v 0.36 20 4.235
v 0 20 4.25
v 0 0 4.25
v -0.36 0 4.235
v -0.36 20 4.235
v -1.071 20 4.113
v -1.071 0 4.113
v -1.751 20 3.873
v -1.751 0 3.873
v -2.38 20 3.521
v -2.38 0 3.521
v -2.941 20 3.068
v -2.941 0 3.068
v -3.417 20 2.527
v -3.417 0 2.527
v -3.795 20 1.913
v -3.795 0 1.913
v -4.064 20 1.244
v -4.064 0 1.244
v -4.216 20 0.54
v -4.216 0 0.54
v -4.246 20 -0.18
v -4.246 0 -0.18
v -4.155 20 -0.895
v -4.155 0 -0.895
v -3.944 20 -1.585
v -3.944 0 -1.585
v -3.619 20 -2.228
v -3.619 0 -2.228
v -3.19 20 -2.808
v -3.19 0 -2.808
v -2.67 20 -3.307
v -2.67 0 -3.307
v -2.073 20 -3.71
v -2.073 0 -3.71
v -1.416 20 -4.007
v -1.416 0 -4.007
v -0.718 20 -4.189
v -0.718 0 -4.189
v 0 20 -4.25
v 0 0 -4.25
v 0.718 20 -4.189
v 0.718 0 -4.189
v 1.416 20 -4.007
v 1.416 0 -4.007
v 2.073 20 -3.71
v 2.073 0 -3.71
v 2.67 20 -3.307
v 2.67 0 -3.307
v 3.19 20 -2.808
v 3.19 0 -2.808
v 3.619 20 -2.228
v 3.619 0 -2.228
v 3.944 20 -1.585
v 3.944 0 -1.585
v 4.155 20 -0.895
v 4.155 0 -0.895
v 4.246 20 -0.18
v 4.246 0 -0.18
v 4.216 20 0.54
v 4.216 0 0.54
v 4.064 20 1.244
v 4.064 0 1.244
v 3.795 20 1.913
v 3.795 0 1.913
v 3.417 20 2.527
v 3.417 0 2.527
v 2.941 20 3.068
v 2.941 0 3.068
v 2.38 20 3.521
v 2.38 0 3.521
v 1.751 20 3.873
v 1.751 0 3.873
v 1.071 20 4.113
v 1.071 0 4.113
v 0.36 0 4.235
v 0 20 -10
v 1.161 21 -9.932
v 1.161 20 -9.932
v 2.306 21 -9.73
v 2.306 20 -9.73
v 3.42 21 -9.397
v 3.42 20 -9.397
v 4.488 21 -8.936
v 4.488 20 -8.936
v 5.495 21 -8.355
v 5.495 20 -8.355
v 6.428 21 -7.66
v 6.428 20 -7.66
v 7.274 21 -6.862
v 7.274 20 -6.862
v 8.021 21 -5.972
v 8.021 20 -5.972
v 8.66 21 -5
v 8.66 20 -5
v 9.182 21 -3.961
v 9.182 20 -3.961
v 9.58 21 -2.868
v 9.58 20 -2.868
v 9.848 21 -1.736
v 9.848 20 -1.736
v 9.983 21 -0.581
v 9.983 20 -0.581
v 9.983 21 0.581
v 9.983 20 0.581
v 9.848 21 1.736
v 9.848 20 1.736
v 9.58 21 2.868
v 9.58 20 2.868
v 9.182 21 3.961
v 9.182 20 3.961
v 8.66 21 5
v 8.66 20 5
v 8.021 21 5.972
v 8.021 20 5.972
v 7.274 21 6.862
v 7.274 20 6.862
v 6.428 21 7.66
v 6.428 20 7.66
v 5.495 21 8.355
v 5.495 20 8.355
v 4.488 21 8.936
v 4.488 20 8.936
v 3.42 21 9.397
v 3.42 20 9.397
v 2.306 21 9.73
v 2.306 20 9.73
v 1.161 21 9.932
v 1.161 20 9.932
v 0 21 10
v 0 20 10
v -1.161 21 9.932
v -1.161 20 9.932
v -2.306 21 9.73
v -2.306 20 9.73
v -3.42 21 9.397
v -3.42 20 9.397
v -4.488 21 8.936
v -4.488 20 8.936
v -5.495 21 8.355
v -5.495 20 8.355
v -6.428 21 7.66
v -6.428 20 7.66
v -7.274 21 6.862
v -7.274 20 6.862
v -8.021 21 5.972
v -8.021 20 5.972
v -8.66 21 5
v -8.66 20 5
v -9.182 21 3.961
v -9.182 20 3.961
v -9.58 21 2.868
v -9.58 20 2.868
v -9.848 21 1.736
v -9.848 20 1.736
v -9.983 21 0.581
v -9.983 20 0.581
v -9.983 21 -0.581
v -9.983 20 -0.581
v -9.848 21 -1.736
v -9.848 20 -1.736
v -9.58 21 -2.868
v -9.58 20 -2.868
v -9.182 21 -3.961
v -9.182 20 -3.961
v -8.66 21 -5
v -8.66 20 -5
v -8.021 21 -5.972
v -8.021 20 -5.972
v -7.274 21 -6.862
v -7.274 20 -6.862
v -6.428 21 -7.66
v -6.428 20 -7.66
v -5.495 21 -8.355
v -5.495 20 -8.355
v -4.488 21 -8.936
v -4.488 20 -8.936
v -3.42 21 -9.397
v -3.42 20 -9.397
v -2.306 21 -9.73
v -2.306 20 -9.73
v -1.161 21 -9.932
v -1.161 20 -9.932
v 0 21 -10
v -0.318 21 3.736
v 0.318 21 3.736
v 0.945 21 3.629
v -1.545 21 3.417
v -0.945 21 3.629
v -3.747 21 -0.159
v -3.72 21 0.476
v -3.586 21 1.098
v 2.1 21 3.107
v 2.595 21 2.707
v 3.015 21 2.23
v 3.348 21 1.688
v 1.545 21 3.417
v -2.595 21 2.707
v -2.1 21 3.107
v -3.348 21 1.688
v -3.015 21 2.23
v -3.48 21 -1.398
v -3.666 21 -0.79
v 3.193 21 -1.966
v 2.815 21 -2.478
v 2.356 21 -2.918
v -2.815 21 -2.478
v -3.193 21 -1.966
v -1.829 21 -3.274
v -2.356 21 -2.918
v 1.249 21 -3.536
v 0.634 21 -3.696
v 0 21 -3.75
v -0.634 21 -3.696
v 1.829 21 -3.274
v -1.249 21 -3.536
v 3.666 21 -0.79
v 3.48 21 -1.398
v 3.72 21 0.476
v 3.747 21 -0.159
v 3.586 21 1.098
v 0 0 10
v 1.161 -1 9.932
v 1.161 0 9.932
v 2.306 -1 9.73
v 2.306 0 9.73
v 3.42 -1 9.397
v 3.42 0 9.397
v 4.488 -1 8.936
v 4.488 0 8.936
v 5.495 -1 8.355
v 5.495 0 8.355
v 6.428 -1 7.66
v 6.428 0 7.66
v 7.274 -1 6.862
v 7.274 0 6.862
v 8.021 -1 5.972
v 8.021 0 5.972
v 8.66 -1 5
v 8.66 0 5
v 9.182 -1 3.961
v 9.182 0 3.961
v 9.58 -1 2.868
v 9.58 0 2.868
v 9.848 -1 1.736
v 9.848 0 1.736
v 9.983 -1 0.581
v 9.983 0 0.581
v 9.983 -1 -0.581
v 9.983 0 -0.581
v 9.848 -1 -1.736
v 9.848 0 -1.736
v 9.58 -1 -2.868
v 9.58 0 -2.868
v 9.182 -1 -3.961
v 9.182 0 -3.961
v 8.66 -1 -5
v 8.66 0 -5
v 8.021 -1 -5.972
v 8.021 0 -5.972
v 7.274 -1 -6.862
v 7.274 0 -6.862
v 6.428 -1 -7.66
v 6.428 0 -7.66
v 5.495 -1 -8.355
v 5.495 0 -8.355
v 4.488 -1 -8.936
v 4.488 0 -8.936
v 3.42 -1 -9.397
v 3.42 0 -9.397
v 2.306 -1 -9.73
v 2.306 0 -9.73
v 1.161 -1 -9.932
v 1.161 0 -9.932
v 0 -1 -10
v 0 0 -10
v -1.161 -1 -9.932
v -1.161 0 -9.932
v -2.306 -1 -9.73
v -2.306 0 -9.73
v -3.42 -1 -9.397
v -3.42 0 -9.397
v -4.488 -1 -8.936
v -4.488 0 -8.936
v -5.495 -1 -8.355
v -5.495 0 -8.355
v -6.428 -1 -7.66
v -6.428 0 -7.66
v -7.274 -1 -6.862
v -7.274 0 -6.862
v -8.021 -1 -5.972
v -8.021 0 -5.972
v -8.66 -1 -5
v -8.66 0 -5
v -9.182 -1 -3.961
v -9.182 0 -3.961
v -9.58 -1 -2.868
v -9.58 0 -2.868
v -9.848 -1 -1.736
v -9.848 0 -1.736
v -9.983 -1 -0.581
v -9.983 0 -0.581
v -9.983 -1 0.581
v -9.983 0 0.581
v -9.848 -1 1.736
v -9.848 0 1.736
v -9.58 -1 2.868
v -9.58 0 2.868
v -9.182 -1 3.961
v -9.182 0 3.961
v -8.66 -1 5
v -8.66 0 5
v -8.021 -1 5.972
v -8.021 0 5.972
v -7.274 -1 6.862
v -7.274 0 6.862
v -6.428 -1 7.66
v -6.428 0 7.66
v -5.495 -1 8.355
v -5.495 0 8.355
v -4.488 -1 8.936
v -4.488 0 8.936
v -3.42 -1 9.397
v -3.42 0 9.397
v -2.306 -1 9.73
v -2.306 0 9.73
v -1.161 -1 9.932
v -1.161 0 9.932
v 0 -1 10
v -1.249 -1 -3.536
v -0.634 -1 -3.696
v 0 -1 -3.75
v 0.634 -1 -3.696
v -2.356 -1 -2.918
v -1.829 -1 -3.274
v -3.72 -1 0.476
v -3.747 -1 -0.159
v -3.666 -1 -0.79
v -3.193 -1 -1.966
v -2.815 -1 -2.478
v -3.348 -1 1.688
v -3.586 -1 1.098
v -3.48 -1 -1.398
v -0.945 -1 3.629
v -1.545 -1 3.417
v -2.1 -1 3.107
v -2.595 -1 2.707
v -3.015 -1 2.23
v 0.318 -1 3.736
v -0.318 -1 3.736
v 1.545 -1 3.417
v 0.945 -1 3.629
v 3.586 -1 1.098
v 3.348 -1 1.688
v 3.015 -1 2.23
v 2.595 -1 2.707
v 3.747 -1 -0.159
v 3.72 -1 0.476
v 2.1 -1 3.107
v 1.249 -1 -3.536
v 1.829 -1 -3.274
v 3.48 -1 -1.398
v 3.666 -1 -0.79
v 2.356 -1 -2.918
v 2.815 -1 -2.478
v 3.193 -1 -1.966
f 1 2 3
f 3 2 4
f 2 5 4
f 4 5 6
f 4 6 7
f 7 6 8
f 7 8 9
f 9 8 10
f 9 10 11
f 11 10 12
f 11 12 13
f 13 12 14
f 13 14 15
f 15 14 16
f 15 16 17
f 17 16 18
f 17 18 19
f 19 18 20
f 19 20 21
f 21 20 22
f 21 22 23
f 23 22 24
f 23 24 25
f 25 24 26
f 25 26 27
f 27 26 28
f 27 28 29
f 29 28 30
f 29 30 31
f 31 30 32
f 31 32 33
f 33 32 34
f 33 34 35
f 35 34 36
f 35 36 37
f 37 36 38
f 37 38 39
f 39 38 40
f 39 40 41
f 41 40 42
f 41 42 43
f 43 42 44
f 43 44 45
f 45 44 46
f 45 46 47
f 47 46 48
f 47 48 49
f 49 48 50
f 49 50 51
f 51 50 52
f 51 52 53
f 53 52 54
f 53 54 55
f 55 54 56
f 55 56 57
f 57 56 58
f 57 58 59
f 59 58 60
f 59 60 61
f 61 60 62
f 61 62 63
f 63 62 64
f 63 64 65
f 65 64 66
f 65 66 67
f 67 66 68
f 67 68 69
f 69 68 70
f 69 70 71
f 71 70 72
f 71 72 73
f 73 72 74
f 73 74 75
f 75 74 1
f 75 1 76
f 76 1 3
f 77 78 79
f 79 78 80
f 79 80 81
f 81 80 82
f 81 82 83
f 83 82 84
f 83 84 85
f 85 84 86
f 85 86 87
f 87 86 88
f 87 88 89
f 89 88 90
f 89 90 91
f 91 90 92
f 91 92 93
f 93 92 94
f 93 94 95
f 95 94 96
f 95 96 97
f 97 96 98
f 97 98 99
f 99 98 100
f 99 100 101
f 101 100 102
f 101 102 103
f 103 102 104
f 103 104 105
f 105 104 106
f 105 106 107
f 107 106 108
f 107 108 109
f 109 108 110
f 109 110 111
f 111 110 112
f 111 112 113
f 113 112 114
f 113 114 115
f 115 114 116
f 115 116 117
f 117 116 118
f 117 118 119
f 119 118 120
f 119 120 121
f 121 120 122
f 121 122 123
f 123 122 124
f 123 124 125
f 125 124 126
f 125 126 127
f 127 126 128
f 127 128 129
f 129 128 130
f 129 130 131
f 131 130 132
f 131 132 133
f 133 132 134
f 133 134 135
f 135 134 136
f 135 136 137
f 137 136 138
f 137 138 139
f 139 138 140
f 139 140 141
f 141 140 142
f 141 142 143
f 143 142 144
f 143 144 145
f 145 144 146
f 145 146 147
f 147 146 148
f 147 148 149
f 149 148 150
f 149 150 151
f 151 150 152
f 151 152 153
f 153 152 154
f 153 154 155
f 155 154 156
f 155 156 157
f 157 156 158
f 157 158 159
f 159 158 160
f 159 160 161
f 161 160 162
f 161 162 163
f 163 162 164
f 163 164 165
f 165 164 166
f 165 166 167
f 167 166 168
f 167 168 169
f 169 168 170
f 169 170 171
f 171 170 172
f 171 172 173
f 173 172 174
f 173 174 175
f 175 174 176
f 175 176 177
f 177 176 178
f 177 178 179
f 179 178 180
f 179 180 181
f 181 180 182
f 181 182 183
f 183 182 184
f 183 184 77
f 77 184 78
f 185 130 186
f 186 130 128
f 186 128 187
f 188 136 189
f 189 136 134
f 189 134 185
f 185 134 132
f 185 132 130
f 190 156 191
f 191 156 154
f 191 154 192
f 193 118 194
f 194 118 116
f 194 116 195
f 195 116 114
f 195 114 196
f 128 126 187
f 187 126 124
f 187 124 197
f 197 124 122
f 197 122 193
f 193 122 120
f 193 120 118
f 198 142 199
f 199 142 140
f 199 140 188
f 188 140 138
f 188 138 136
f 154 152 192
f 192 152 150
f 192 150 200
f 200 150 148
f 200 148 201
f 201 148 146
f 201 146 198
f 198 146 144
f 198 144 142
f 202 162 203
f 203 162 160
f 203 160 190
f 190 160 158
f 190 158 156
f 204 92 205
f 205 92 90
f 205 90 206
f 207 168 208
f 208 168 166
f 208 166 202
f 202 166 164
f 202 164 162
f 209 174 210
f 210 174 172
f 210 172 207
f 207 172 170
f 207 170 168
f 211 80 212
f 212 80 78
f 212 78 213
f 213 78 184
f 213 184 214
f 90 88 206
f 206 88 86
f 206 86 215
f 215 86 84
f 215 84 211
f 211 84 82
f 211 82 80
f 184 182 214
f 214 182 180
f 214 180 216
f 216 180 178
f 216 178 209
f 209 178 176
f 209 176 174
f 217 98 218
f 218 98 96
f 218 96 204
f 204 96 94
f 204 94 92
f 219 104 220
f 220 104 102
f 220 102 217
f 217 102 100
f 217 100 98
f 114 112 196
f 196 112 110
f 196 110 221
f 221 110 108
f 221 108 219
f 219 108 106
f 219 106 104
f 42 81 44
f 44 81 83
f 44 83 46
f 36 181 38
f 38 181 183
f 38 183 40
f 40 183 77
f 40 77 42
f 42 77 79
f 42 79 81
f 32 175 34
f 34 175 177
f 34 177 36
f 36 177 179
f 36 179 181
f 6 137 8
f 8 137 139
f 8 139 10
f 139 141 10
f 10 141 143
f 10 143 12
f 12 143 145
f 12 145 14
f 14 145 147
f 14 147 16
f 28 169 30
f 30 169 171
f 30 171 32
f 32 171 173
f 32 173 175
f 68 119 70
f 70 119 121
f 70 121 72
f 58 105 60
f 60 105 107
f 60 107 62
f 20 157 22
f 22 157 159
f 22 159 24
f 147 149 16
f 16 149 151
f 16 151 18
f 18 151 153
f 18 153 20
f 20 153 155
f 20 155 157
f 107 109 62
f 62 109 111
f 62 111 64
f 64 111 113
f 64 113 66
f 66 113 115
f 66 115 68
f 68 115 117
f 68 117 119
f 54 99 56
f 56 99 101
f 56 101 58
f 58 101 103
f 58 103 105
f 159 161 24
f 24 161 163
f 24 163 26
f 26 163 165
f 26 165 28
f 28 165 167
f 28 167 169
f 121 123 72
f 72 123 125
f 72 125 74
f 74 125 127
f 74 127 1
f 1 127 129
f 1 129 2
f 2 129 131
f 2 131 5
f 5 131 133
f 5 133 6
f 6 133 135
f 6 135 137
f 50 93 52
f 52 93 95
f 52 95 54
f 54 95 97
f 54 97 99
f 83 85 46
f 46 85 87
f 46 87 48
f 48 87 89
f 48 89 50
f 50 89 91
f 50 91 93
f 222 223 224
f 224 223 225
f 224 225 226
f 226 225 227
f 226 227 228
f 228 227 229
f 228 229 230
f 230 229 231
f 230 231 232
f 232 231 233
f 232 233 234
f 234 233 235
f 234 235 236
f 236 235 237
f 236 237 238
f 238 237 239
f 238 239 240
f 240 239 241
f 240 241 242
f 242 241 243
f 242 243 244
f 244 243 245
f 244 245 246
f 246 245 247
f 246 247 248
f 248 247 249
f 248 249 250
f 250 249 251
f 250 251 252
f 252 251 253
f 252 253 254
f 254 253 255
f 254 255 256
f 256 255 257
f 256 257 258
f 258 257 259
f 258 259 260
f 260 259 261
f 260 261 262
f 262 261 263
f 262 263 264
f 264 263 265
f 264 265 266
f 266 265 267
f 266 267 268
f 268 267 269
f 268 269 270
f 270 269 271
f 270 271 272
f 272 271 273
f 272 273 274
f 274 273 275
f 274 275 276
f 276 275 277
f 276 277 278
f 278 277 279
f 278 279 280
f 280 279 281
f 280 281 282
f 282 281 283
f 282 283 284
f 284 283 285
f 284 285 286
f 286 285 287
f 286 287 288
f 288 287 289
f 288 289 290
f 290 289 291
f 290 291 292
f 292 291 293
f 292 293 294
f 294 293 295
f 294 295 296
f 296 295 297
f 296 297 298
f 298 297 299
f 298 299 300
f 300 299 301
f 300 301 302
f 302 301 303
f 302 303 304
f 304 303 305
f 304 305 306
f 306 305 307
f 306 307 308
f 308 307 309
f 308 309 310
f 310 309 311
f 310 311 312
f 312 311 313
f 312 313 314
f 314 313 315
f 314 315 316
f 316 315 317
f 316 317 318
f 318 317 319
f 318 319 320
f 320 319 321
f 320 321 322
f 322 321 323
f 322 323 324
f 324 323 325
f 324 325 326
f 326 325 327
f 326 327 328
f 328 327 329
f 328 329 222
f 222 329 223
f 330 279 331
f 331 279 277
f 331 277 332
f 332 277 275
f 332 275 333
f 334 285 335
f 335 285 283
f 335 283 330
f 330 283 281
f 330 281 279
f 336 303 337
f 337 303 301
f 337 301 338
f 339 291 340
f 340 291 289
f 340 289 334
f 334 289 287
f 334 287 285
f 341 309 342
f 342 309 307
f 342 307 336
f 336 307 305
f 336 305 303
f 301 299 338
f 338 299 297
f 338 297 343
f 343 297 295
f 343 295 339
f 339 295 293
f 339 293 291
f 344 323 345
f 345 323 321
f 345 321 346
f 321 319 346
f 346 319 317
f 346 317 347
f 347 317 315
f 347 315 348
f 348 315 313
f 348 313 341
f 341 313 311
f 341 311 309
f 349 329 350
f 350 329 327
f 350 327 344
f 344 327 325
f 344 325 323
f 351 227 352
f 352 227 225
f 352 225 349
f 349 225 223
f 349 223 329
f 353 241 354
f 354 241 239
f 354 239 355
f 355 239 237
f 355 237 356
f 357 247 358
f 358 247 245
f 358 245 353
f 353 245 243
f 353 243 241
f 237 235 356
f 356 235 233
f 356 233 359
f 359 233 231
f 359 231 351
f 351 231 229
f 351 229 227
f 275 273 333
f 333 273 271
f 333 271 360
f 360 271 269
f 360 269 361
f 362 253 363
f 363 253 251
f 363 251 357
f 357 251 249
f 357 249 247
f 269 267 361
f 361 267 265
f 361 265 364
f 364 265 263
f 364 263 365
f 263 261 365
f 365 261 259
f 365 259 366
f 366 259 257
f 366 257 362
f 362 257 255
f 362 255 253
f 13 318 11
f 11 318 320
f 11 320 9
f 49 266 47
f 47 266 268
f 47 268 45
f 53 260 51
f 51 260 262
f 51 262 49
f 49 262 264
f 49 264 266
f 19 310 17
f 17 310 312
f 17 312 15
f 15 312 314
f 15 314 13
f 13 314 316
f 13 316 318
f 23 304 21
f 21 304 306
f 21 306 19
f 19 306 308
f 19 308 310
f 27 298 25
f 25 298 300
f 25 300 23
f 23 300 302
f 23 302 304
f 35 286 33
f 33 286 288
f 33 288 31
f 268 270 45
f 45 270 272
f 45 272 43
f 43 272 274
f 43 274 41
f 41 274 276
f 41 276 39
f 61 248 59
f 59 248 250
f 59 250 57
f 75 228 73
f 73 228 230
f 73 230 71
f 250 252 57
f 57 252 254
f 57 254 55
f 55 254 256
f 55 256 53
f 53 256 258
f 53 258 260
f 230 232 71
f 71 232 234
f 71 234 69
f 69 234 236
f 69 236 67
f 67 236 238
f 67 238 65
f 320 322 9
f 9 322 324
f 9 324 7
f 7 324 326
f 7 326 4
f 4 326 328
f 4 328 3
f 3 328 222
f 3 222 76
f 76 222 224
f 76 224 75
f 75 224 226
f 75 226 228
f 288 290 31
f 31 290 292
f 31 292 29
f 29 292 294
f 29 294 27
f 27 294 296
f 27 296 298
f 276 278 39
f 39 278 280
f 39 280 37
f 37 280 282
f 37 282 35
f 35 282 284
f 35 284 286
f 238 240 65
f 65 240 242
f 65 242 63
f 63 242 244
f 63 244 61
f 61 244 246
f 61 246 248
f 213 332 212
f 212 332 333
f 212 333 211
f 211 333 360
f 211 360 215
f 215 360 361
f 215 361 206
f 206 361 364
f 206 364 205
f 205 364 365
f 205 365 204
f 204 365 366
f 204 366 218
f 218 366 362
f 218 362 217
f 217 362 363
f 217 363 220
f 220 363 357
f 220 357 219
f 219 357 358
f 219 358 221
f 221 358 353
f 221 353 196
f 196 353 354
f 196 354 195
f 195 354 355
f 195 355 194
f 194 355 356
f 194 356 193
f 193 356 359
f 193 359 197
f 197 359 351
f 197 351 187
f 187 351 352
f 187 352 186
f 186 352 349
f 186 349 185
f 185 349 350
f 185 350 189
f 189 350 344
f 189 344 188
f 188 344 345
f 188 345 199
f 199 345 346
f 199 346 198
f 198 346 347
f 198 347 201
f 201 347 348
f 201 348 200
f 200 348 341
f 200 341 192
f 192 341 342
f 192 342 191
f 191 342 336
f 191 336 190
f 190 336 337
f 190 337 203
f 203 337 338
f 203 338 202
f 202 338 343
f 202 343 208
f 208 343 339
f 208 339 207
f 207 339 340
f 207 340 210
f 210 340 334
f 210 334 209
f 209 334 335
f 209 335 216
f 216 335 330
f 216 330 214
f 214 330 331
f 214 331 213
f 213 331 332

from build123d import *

# Parameters (mm, degrees)
SKETCH3_R           = 4.25
SKETCH3_R_2         = 3.75
BOSS_EXTRUDE1_DEPTH = 20
SKETCH21_R          = 10
BOSS_EXTRUDE2_DEPTH = 1
SKETCH29_R          = 1.75
CUT_EXTRUDE6_DEPTH  = 8.3
BOSS_EXTRUDE5_START = 1
SKETCH33_R          = 10
BOSS_EXTRUDE5_DEPTH = 1
SKETCH35_R          = 3.75
CUT_EXTRUDE8_DEPTH  = 27.153393661


with BuildPart() as part:
    # Sketch3 → Boss-Extrude1 (new body)
    with BuildSketch(Plane(origin=(0, 0, 0), x_dir=(1, 0, 0), z_dir=(0, 1, 0))):
        with Locations(Location((0, 0, 0), (0, 0, 270))):
            Circle(SKETCH3_R)
        with Locations(Location((0, 0, 0), (0, 0, 270))):
            Circle(SKETCH3_R_2, mode=Mode.SUBTRACT)
    extrude(amount=BOSS_EXTRUDE1_DEPTH)

    # Sketch21 → Boss-Extrude2 (add)
    with BuildSketch(Plane(origin=(0, 20, 0), x_dir=(1, 0, 0), z_dir=(0, 1, 0))):
        with Locations(Location((0, 0, 0), (0, 0, 270))):
            Circle(SKETCH21_R)
    extrude(amount=BOSS_EXTRUDE2_DEPTH)

    # Sketch29 → Cut-Extrude6 (cut)
    with BuildSketch(Plane(origin=(0, 21, 0), x_dir=(1, 0, 0), z_dir=(0, 1, 0))):
        with Locations(Location((0, 0, 0), (0, 0, 270))):
            Circle(SKETCH29_R)
    extrude(amount=-CUT_EXTRUDE6_DEPTH, mode=Mode.SUBTRACT)

    # Sketch33 → Boss-Extrude5 (add)
    with BuildSketch(Plane.XZ.offset(BOSS_EXTRUDE5_START)):
        with Locations(Location((0, 0, 0), (0, 0, 90))):
            Circle(SKETCH33_R)
    extrude(amount=-BOSS_EXTRUDE5_DEPTH)

    # Sketch35 → Cut-Extrude8 (cut, through all)
    with BuildSketch(Plane.XZ.offset(1)):
        with Locations(Location((0, 0, 0), (0, 0, 270))):
            Circle(SKETCH35_R)
    extrude(amount=-CUT_EXTRUDE8_DEPTH, mode=Mode.SUBTRACT)


solid = part.part
